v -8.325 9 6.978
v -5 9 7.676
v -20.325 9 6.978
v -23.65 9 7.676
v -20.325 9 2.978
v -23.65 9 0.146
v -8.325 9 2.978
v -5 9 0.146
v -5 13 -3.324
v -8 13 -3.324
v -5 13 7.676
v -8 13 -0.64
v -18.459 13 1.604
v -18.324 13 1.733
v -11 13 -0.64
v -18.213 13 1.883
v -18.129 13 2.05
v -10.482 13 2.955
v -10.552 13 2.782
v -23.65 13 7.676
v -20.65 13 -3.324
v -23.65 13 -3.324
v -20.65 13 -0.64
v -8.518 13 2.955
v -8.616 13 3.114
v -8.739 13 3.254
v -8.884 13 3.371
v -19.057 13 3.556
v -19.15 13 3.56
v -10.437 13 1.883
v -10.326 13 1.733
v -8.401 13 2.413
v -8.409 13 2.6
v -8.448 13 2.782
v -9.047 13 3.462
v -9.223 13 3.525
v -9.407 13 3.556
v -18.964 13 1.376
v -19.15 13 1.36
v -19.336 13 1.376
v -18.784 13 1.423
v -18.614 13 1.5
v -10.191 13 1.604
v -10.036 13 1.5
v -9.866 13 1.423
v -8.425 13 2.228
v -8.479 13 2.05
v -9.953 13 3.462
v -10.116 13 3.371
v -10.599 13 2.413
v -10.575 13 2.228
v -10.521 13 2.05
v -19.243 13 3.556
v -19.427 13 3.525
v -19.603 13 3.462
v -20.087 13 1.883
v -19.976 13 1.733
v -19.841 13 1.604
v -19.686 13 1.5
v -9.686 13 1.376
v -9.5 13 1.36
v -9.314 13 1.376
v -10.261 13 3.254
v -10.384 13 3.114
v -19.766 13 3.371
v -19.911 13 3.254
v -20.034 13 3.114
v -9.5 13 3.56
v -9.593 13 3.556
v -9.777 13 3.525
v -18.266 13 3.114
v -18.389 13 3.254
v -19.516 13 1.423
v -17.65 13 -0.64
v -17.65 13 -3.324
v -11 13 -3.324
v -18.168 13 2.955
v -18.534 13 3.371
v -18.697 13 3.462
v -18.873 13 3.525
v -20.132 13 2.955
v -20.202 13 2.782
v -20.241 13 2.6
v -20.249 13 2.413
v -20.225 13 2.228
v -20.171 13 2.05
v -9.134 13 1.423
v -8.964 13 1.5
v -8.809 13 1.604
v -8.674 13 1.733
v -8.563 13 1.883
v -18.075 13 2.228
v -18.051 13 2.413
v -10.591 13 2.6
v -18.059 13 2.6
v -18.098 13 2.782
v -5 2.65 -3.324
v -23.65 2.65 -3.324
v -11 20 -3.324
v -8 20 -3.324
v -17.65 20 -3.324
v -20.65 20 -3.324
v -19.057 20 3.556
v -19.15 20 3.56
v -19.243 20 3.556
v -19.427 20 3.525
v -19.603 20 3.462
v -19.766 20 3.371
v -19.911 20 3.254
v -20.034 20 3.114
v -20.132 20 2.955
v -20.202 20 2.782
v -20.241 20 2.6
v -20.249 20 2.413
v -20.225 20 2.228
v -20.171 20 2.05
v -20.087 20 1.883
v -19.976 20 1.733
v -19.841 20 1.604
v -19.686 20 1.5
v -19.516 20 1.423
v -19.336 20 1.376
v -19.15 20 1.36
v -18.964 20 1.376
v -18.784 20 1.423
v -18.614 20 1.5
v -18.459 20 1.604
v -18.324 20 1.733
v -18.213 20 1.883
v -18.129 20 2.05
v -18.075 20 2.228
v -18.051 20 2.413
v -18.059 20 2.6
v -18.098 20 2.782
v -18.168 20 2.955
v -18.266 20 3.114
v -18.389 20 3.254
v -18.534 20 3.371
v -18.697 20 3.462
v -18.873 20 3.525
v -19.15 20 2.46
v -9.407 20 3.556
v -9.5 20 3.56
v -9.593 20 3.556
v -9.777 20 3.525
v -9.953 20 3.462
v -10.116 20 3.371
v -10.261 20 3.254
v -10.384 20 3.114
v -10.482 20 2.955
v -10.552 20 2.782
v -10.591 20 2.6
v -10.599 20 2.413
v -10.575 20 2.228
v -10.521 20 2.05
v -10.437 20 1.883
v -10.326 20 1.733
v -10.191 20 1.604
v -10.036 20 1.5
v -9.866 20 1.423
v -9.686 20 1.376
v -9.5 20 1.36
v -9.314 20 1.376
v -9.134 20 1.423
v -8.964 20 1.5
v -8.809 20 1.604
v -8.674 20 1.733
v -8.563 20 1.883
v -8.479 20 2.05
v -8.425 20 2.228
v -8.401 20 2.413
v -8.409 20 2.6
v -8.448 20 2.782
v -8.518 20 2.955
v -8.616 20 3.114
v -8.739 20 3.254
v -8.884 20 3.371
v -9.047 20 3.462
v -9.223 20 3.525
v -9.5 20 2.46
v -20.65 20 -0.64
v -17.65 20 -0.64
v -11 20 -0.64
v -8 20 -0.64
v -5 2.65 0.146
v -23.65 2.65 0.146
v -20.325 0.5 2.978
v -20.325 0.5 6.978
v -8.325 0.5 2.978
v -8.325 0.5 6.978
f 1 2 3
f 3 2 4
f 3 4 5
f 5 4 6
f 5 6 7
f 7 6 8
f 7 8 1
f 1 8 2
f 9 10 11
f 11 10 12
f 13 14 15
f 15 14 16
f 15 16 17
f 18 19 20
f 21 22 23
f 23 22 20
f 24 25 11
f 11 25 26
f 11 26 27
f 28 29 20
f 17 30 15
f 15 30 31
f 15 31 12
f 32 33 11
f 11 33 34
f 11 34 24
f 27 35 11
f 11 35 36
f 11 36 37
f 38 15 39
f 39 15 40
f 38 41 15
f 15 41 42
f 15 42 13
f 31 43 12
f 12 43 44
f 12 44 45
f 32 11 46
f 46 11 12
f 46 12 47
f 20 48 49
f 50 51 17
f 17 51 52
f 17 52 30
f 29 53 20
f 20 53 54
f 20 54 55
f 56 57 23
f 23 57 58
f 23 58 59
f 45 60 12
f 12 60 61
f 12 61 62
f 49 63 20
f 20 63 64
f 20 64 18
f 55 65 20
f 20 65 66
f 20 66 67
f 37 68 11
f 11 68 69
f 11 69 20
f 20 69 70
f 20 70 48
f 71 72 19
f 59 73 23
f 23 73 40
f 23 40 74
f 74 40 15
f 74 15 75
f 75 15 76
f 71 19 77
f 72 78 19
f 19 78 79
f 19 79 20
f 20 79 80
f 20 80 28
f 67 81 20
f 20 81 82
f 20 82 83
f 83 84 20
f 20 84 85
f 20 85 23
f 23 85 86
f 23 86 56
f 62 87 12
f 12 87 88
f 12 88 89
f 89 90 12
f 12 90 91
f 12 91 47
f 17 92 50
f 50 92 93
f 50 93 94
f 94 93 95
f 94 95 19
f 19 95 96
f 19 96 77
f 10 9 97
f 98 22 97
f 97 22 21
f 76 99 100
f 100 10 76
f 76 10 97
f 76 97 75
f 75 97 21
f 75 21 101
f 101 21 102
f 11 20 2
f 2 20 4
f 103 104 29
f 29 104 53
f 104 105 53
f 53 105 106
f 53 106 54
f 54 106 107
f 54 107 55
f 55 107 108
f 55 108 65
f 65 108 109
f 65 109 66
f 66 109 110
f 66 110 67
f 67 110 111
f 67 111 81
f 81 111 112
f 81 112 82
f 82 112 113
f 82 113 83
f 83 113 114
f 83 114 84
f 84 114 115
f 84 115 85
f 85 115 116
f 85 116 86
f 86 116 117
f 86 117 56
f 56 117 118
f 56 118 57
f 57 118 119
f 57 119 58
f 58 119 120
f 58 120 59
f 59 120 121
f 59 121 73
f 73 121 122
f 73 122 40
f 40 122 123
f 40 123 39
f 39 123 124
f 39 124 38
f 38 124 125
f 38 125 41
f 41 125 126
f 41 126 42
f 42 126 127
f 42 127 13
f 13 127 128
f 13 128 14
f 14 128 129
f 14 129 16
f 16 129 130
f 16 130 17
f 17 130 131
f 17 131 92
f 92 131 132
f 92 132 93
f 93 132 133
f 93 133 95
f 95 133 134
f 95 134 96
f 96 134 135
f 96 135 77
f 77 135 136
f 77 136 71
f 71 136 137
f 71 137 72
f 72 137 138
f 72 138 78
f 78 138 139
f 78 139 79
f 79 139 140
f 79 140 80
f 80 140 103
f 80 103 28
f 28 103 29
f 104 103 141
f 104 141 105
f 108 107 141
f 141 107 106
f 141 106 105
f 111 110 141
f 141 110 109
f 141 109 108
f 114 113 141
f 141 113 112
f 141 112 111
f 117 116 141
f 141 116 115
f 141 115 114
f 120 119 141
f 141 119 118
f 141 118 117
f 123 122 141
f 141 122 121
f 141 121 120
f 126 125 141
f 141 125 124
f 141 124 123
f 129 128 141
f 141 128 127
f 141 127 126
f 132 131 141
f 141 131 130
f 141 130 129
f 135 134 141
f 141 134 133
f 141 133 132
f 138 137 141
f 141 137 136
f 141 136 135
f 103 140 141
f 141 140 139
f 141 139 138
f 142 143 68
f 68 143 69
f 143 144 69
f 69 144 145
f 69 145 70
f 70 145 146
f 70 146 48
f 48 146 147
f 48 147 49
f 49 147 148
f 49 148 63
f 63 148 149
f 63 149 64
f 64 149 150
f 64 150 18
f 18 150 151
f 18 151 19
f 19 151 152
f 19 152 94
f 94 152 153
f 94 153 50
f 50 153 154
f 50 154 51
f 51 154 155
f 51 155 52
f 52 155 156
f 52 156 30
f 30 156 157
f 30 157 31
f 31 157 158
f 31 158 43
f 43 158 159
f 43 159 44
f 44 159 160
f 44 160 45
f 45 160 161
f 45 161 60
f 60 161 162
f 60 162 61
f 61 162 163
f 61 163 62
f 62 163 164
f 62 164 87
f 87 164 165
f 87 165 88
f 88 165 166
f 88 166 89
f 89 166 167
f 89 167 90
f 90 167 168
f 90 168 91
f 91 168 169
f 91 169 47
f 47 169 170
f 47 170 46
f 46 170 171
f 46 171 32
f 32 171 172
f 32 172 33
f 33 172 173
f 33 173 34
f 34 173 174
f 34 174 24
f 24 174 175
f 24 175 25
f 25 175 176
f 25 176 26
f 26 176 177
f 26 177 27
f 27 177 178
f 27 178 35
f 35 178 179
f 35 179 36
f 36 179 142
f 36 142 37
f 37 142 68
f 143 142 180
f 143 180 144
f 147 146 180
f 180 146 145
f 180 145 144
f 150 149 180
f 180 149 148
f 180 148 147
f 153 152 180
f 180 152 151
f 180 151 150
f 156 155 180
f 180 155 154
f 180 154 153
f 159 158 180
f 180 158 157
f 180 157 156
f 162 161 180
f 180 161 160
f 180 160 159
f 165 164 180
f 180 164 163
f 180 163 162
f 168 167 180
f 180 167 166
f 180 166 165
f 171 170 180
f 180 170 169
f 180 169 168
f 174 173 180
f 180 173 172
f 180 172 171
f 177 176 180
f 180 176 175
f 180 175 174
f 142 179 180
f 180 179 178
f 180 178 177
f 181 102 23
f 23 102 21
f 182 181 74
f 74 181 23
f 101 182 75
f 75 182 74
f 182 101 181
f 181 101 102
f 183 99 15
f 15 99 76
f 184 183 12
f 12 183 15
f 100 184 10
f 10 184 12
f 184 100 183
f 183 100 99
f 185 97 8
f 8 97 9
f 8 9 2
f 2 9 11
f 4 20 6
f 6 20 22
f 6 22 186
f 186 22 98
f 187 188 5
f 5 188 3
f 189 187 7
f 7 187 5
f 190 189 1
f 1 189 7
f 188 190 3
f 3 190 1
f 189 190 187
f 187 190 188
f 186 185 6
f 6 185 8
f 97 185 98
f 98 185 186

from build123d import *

# Parameters (mm, degrees)
SKETCH1_W           = 16.5
SKETCH1_H           = 11.5
SKETCH1_W_2         = 10.5
SKETCH1_H_2         = 5.5
BOSS_EXTRUDE1_DEPTH = 17
CUT_EXTRUDE1_REACH  = 28.334
SKETCH2_R           = 2.5
SKETCH3_W           = 16.5
SKETCH3_H           = 11.5
BOSS_EXTRUDE2_DEPTH = 3
BOSS_EXTRUDE3_START = -11
SKETCH4_W           = 21.75
SKETCH4_H           = 11
BOSS_EXTRUDE3_DEPTH = 4
CHAMFER1_SIZE       = 5
CHAMFER2_SIZE       = 3
SKETCH5_R           = 1.1
SKETCH5_W           = 3
SKETCH5_H           = 2.684
BOSS_EXTRUDE4_DEPTH = 7
BOSS_EXTRUDE5_DEPTH = 11
CUT_EXTRUDE2_REACH  = 41.144
SKETCH7_W           = 10.5
SKETCH7_H           = 1.5
CUT_EXTRUDE3_REACH  = 38.011
SKETCH8_W           = 21.5
SKETCH8_H           = 19.176
SKETCH8_W_2         = 4
SKETCH8_H_2         = 11
SKETCH9_W           = 12
SKETCH9_H           = 4
BOSS_EXTRUDE6_DEPTH = 8.5
SKETCH10_W          = 18.65
SKETCH10_H          = 3.47
BOSS_EXTRUDE7_DEPTH = 6.35


with BuildPart() as part:
    # Sketch1 → Boss-Extrude1 (new body)
    with BuildSketch(Plane(origin=(0, 0, 0), x_dir=(1, 0, 0), z_dir=(0, 1, 0))):
        with Locations((8.25, 5.75)):
            Rectangle(SKETCH1_W, SKETCH1_H)
        with Locations((8.25, 5.75)):
            Rectangle(SKETCH1_W_2, SKETCH1_H_2, mode=Mode.SUBTRACT)
    extrude(amount=BOSS_EXTRUDE1_DEPTH)

    # Sketch2 → Cut-Extrude1 (cut, up to next)
    with BuildSketch(Plane(origin=(0, 0, -11.5), x_dir=(-1, 0, 0), z_dir=(0, 0, -1)), mode=Mode.PRIVATE) as cut_extrude1_sk1:
        with Locations((-8.25, 10.5)):
            Circle(SKETCH2_R)
    cut_extrude1_tool1 = extrude(cut_extrude1_sk1.sketch, amount=-CUT_EXTRUDE1_REACH, mode=Mode.PRIVATE) & part.part
    add(cut_extrude1_tool1.solids().sort_by_distance((8.25, 10.5, -11.5))[0], mode=Mode.SUBTRACT)

    # Sketch3 → Boss-Extrude2 (add)
    with BuildSketch(Plane(origin=(0, 17, 0), x_dir=(1, 0, 0), z_dir=(0, 1, 0))):
        with Locations((8.25, 5.75)):
            Rectangle(SKETCH3_W, SKETCH3_H)
    extrude(amount=BOSS_EXTRUDE2_DEPTH)

    # Sketch4 → Boss-Extrude3 (add)
    with BuildSketch(Plane(origin=(0, 20, 0), x_dir=(1, 0, 0), z_dir=(0, 1, 0)).offset(BOSS_EXTRUDE3_START)):
        with Locations((-10.875, -2.176)):
            Rectangle(SKETCH4_W, SKETCH4_H)
    extrude(amount=BOSS_EXTRUDE3_DEPTH)

    # Chamfer1
    chamfer1_edges = [part.edges().sort_by_distance(p)[0] for p in [
        (0, 11, 0),
        (0, 11, -3.324),
    ]]
    chamfer(chamfer1_edges, length=CHAMFER1_SIZE)

    # Chamfer2
    chamfer2_edges = [part.edges().sort_by_distance(p)[0] for p in [
        (0, 13, -4.162),
        (0, 9, -4.162),
        (2.5, 13, 0),
        (2.5, 9, 0),
    ]]
    chamfer(chamfer2_edges, length=CHAMFER2_SIZE)

    # Sketch5 → Boss-Extrude4 (add)
    with BuildSketch(Plane(origin=(0, 13, 0), x_dir=(1, 0, 0), z_dir=(0, 1, 0))):
        with Locations(Location((-19.15, -2.46, 0), (0, 0, 270))):
            Circle(SKETCH5_R)
        with Locations(Location((-9.5, -2.46, 0), (0, 0, 270))):
            Circle(SKETCH5_R)
        with Locations((-19.15, 1.982)):
            Rectangle(SKETCH5_W, SKETCH5_H)
        with Locations((-9.5, 1.982)):
            Rectangle(SKETCH5_W, SKETCH5_H)
    extrude(amount=BOSS_EXTRUDE4_DEPTH)

    # Sketch6 → Boss-Extrude5 (add)
    with BuildSketch(Plane.XY.offset(7.676)):
        Polygon((-21.75, 13), (-24.65, 13), (-24.65, 20), (-27.65, 20), (-27.65, 9), (-21.75, 9), align=None)
    extrude(amount=-BOSS_EXTRUDE5_DEPTH)

    # Sketch7 → Cut-Extrude2 (cut, up to next)
    with BuildSketch(Plane(origin=(0, 0, -11.5), x_dir=(-1, 0, 0), z_dir=(0, 0, -1)), mode=Mode.PRIVATE) as cut_extrude2_sk1:
        with Locations((-8.25, 16.25)):
            Rectangle(SKETCH7_W, SKETCH7_H)
    cut_extrude2_tool1 = extrude(cut_extrude2_sk1.sketch, amount=-CUT_EXTRUDE2_REACH, mode=Mode.PRIVATE) & part.part
    add(cut_extrude2_tool1.solids().sort_by_distance((8.25, 16.25, -11.5))[0], mode=Mode.SUBTRACT)

    # Sketch8 → Cut-Extrude3 (cut, up to next)
    with BuildSketch(Plane(origin=(0, 20, 0), x_dir=(1, 0, 0), z_dir=(0, 1, 0)), mode=Mode.PRIVATE) as cut_extrude3_sk1:
        with Locations((5.75, 1.912)):
            Rectangle(SKETCH8_W, SKETCH8_H)
    cut_extrude3_tool1 = extrude(cut_extrude3_sk1.sketch, amount=-CUT_EXTRUDE3_REACH, mode=Mode.PRIVATE) & part.part
    # Sketch8 → Cut-Extrude3 (cut, up to next)
    with BuildSketch(Plane(origin=(0, 20, 0), x_dir=(1, 0, 0), z_dir=(0, 1, 0)), mode=Mode.PRIVATE) as cut_extrude3_sk2:
        with Locations((-25.65, -2.176)):
            Rectangle(SKETCH8_W_2, SKETCH8_H_2)
    cut_extrude3_tool2 = extrude(cut_extrude3_sk2.sketch, amount=-CUT_EXTRUDE3_REACH, mode=Mode.PRIVATE) & part.part
    add(cut_extrude3_tool1.solids().sort_by_distance((5.75, 20, -1.912))[0], mode=Mode.SUBTRACT)
    add(cut_extrude3_tool2.solids().sort_by_distance((-25.65, 20, 2.176))[0], mode=Mode.SUBTRACT)

    # Sketch9 → Boss-Extrude6 (add)
    with BuildSketch(Plane.XZ.offset(-9)):
        with Locations((-14.325, 4.978)):
            Rectangle(SKETCH9_W, SKETCH9_H)
    extrude(amount=BOSS_EXTRUDE6_DEPTH)

    # Sketch10 → Boss-Extrude7 (add)
    with BuildSketch(Plane.XZ.offset(-9)):
        with Locations((-14.325, -1.589)):
            Rectangle(SKETCH10_W, SKETCH10_H)
    extrude(amount=BOSS_EXTRUDE7_DEPTH)


solid = part.part
